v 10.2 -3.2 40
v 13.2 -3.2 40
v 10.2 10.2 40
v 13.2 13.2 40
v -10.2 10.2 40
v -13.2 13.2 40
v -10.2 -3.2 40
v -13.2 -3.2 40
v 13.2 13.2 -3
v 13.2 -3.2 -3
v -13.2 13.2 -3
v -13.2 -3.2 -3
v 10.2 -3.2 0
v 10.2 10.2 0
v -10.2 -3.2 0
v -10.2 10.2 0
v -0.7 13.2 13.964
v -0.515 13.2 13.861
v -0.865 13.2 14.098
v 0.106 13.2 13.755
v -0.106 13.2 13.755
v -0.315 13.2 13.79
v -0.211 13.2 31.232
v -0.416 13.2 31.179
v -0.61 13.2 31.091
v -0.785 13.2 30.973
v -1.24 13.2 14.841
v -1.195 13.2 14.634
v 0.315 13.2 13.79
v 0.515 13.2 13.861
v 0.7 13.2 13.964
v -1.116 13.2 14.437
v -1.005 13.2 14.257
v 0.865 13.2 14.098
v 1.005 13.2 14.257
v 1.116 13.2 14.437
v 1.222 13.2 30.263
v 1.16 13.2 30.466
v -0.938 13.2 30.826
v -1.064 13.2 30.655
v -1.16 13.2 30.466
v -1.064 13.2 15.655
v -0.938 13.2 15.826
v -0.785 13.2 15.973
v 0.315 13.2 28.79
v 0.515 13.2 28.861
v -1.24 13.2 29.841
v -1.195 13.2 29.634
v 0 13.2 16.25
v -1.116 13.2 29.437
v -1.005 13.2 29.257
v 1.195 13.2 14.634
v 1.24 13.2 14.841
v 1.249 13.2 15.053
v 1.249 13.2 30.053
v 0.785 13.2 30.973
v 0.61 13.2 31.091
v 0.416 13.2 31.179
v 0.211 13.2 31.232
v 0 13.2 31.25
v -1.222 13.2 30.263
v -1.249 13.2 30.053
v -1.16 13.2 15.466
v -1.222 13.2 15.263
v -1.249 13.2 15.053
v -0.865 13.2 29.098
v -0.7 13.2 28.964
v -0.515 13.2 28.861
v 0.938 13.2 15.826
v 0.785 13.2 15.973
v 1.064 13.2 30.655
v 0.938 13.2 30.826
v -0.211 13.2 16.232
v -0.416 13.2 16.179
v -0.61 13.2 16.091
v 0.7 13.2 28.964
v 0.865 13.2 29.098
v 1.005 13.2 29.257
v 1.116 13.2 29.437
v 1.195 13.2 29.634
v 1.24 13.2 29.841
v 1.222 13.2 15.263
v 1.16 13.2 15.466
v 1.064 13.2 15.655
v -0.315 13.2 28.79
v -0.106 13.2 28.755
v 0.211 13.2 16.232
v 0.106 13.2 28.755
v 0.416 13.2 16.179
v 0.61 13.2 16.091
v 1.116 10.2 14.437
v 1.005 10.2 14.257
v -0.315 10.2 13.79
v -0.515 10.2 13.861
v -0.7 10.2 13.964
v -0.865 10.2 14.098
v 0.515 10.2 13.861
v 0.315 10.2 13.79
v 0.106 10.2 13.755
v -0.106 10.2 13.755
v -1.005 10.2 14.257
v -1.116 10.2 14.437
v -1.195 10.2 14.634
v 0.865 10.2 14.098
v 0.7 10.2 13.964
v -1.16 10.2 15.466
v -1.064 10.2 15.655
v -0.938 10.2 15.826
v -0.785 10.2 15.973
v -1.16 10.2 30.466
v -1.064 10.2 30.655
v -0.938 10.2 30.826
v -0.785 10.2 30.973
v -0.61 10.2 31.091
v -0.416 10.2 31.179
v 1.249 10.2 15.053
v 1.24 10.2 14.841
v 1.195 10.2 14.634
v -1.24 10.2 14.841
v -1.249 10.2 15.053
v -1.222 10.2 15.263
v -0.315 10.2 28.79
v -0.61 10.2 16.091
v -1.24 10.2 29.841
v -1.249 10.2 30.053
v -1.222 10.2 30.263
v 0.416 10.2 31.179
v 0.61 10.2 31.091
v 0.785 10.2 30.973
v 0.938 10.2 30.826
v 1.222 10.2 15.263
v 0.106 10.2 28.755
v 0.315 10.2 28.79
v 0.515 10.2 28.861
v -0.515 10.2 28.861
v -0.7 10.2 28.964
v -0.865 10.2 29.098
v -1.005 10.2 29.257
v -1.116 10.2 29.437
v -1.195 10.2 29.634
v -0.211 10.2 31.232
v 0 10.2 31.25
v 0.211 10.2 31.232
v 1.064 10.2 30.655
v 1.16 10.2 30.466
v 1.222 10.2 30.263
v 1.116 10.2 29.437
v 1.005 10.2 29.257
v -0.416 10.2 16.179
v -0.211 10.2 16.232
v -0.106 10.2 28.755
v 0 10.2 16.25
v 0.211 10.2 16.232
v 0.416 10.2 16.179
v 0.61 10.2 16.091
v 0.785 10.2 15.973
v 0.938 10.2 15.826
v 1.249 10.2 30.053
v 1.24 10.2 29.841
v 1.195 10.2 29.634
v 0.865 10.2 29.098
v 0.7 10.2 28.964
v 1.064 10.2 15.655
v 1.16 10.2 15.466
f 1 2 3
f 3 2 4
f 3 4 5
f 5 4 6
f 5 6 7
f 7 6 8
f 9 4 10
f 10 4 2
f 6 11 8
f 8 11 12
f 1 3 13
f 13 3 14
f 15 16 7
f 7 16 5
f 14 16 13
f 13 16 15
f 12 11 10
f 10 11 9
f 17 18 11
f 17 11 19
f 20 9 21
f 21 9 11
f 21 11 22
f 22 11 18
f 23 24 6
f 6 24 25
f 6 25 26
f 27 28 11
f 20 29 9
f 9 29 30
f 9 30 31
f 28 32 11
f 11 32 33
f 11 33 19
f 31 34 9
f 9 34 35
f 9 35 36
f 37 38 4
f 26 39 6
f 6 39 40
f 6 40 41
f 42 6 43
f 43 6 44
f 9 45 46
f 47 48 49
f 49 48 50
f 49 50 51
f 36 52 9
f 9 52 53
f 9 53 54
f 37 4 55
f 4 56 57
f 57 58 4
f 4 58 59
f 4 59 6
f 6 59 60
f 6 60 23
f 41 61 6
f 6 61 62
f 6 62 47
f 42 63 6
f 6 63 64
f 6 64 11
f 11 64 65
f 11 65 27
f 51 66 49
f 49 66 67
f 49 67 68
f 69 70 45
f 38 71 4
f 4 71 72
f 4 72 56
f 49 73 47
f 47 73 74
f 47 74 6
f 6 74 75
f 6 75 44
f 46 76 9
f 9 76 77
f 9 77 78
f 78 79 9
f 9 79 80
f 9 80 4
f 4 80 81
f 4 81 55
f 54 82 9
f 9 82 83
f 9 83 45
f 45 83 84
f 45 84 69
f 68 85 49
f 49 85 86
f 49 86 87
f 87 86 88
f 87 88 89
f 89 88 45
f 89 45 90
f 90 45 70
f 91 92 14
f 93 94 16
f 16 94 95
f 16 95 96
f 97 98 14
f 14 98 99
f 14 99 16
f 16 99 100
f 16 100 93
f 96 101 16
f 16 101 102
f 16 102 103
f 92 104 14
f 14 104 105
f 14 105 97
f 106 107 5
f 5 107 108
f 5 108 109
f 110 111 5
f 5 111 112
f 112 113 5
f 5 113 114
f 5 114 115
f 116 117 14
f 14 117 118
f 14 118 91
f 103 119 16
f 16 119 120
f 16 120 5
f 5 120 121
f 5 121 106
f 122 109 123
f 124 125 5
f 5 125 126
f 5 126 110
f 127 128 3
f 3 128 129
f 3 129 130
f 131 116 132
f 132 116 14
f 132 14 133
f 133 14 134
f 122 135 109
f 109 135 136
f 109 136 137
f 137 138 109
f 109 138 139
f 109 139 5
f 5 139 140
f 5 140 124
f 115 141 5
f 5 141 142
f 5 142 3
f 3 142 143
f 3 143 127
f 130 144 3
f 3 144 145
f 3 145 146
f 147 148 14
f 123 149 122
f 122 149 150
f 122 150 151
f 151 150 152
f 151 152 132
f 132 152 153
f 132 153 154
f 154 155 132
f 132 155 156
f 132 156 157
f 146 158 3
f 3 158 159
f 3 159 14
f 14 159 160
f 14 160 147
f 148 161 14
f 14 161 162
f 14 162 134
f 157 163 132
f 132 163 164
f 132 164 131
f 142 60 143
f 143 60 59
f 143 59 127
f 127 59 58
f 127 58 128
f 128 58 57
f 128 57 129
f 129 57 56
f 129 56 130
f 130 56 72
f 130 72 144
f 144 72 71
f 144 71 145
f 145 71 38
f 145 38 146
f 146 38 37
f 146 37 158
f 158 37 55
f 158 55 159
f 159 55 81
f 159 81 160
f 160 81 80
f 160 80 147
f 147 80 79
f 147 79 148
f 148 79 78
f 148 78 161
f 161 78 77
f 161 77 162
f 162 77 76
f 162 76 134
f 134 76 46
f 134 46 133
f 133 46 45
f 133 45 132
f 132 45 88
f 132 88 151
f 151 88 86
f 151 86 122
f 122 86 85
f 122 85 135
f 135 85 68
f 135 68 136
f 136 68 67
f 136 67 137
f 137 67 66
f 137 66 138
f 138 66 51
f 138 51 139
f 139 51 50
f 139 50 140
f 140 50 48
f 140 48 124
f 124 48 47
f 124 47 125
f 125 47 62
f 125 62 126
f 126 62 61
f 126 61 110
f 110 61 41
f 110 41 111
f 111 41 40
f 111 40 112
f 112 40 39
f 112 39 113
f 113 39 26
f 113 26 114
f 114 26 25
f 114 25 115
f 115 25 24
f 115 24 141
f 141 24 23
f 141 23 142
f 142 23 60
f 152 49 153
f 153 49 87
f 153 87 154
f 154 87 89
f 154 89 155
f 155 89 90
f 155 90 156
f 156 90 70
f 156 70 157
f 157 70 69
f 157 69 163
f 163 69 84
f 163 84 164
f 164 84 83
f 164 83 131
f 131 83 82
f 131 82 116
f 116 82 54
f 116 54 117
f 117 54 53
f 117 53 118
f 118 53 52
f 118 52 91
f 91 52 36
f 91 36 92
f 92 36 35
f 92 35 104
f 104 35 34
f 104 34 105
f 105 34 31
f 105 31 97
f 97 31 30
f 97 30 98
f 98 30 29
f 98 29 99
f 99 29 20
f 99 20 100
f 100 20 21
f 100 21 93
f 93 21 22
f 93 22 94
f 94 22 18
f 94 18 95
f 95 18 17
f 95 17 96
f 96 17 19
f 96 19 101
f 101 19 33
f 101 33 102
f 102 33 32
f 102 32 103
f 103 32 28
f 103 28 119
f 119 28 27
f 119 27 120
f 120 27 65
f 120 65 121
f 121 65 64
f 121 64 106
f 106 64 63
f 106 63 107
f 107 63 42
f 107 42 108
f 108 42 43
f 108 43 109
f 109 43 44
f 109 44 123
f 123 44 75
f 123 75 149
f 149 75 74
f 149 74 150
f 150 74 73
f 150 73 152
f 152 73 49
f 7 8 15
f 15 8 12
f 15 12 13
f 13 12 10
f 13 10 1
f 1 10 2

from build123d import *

# Parameters (mm, degrees)
SKETCH1_W           = 26.4
SKETCH1_H           = 26.4
SKETCH1_W_2         = 20.4
SKETCH1_H_2         = 20.4
BOSS_EXTRUDE1_DEPTH = 40
SKETCH2_W           = 26.4
SKETCH2_H           = 26.4
BOSS_EXTRUDE2_DEPTH = 3
SKETCH3_W           = 20.4
SKETCH3_H           = 40
CUT_EXTRUDE1_DEPTH  = 3
SKETCH4_R           = 1.25
CUT_EXTRUDE2_DEPTH  = 3
SKETCH5_W           = 26.4
SKETCH5_H           = 43
CUT_EXTRUDE3_DEPTH  = 10


with BuildPart() as part:
    # Sketch1 → Boss-Extrude1 (new body)
    with BuildSketch(Plane.XY):
        Rectangle(SKETCH1_W, SKETCH1_H)
        Rectangle(SKETCH1_W_2, SKETCH1_H_2, mode=Mode.SUBTRACT)
    extrude(amount=BOSS_EXTRUDE1_DEPTH)

    # Sketch2 → Boss-Extrude2 (add)
    with BuildSketch(Plane(origin=(0, 0, 0), x_dir=(-1, 0, 0), z_dir=(0, 0, -1))):
        Rectangle(SKETCH2_W, SKETCH2_H)
    extrude(amount=BOSS_EXTRUDE2_DEPTH)

    # Sketch3 → Cut-Extrude1 (cut)
    with BuildSketch(Plane.XZ.offset(13.2)):
        with Locations((0, 20)):
            Rectangle(SKETCH3_W, SKETCH3_H)
    extrude(amount=-CUT_EXTRUDE1_DEPTH, mode=Mode.SUBTRACT)

    # Sketch4 → Cut-Extrude2 (cut)
    with BuildSketch(Plane(origin=(0, 13.2, 0), x_dir=(1, 0, 0), z_dir=(0, 1, 0))):
        with Locations(Location((0, -15, 0), (0, 0, 270))):
            Circle(SKETCH4_R)
        with Locations(Location((0, -30, 0), (0, 0, 270))):
            Circle(SKETCH4_R)
    extrude(amount=-CUT_EXTRUDE2_DEPTH, mode=Mode.SUBTRACT)

    # Sketch5 → Cut-Extrude3 (cut)
    with BuildSketch(Plane.XZ.offset(13.2)):
        with Locations((0, 18.5)):
            Rectangle(SKETCH5_W, SKETCH5_H)
    extrude(amount=-CUT_EXTRUDE3_DEPTH, mode=Mode.SUBTRACT)


solid = part.part
